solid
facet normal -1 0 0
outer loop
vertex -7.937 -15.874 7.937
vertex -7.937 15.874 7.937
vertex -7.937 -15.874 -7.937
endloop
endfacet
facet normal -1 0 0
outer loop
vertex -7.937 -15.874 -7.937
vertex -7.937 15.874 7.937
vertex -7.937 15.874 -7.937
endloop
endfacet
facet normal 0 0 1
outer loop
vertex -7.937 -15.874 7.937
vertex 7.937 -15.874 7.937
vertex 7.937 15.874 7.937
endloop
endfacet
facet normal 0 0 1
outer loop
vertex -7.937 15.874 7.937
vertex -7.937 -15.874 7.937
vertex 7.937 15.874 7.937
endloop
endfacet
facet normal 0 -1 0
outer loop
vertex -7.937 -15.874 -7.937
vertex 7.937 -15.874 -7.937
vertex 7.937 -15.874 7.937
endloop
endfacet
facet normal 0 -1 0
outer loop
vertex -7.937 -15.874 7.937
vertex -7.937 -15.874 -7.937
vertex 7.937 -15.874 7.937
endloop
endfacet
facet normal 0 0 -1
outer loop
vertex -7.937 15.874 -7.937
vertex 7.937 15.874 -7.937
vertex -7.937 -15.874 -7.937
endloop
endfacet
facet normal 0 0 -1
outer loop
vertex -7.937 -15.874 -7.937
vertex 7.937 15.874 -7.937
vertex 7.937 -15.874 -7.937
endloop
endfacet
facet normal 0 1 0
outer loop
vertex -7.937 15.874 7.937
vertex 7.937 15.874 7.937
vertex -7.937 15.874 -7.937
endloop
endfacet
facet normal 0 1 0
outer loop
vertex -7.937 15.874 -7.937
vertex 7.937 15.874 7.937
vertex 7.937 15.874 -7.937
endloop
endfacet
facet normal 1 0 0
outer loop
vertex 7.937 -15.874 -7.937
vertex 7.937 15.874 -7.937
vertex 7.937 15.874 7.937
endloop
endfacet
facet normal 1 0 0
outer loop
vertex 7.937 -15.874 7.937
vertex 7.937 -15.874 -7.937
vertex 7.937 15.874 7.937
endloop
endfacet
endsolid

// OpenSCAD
$fn=100;

width_height_ratio=2;
volume=8000;
Z=pow(volume/width_height_ratio, 1/3);
X=Z;
Y=width_height_ratio*X;
v=X*Y*Z;
echo("X=", X);
echo("Y=", Y);
echo("Z=", Z);
echo("v=", v);
cube([X,Y,Z], center = true);
